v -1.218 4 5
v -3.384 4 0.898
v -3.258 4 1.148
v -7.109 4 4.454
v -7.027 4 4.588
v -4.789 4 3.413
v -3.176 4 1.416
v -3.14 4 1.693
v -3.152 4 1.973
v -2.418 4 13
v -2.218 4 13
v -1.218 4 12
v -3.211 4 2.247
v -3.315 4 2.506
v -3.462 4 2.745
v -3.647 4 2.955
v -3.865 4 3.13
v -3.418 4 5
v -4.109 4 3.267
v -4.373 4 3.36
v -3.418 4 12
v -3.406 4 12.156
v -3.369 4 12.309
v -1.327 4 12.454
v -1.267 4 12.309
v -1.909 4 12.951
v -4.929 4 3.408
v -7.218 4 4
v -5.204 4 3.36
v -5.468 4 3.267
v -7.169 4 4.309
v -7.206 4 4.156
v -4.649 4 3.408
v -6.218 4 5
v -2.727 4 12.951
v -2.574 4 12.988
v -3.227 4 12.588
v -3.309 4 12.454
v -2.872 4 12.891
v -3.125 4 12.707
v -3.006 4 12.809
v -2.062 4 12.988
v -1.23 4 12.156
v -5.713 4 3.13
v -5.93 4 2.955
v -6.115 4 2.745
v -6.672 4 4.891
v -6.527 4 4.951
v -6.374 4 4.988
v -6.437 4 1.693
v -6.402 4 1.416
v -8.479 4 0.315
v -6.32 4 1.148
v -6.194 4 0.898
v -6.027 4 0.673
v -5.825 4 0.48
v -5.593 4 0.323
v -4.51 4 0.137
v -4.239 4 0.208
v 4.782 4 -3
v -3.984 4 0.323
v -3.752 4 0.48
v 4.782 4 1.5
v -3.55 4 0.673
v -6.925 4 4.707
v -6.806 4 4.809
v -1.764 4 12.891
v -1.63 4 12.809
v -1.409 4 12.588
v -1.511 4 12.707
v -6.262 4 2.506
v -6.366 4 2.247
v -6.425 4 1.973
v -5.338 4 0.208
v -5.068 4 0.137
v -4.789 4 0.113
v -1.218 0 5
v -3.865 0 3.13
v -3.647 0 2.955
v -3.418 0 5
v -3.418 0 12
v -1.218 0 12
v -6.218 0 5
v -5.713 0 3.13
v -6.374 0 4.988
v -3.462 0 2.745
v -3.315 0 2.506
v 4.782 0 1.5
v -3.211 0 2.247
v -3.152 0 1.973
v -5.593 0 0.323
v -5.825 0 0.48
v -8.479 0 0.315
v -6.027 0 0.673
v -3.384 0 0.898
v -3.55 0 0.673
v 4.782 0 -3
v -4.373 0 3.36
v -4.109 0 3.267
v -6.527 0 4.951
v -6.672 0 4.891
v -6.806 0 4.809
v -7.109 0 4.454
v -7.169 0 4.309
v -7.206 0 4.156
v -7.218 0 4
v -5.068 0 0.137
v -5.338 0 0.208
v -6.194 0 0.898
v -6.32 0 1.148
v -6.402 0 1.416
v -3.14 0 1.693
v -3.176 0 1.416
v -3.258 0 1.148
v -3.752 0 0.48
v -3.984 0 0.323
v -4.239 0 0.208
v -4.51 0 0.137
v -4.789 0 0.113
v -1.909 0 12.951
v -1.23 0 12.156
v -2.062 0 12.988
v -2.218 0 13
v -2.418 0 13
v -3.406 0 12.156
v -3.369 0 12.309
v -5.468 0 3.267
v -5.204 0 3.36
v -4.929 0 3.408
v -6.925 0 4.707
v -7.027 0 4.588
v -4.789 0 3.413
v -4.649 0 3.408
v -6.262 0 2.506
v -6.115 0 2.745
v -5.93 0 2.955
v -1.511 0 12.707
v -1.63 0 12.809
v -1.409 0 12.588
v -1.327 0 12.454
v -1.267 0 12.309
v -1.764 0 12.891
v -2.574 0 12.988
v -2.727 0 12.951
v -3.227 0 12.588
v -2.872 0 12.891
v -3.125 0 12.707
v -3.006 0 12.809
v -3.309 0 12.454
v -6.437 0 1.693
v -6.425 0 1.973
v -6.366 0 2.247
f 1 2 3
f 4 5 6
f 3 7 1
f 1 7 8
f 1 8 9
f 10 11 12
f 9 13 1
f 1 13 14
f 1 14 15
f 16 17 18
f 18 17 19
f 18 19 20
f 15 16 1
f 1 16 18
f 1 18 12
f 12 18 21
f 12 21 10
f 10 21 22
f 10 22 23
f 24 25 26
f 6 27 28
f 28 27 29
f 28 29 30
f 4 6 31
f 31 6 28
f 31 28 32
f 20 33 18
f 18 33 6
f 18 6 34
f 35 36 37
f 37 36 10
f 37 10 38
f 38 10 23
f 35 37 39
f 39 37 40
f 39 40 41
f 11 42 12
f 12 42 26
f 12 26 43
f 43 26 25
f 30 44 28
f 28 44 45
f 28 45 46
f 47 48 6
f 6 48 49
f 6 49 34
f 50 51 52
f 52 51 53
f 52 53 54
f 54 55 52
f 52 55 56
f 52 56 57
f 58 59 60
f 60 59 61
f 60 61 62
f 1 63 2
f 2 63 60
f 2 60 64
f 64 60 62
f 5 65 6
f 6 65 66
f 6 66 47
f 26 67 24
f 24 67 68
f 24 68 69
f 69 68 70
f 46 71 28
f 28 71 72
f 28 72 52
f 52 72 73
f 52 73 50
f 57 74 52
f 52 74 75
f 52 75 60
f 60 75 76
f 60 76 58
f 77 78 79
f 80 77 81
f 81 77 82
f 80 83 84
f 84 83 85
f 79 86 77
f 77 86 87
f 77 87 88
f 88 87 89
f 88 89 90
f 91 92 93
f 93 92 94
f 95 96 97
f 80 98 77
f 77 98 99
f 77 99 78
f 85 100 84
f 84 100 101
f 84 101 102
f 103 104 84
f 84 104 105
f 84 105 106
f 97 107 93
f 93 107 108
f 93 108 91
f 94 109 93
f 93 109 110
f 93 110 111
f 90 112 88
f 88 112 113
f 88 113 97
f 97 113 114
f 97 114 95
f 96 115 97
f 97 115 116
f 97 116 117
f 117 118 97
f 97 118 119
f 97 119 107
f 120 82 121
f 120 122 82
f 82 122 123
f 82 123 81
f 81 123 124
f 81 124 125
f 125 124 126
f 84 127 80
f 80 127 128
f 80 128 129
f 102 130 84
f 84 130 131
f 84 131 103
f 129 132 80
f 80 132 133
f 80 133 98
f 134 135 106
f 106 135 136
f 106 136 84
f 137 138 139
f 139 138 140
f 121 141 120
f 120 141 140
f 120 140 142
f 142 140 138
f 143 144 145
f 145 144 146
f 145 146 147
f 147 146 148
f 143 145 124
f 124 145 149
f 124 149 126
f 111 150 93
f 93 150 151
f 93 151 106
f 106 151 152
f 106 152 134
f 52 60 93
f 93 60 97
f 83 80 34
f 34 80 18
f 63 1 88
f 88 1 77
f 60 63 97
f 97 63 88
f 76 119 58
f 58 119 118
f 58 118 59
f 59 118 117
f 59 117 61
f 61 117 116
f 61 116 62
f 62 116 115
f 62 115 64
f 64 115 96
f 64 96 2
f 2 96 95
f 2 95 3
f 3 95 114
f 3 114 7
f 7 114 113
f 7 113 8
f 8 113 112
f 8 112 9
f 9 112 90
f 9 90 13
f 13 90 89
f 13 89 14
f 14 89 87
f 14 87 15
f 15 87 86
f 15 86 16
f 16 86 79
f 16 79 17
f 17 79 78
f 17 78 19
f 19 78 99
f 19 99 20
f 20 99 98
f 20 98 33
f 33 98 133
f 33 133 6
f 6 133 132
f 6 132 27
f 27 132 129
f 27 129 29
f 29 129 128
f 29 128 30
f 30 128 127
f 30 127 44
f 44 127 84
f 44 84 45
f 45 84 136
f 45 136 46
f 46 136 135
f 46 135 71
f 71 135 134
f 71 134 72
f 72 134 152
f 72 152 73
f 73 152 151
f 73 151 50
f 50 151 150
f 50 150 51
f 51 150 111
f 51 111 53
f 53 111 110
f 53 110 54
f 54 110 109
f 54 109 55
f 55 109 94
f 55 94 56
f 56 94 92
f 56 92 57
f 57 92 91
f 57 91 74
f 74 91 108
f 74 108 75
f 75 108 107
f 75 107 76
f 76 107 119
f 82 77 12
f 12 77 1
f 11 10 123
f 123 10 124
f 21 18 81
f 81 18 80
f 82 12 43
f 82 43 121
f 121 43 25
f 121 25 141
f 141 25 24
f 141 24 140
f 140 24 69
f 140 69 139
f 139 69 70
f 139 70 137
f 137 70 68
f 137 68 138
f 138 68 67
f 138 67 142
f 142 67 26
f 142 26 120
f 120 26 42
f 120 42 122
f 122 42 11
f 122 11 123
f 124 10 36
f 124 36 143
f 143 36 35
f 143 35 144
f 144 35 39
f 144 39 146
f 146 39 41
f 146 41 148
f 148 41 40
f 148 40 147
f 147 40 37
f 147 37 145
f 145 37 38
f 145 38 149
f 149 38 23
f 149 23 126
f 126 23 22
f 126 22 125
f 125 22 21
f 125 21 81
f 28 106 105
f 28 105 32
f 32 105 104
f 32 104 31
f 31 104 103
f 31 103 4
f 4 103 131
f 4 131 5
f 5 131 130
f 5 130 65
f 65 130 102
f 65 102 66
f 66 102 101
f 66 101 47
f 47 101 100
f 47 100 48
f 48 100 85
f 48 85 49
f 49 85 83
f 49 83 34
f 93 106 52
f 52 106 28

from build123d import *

# Parameters (mm, degrees)
SKETCH1_R           = 1.65
BOSS_EXTRUDE1_DEPTH = 4
SKETCH2_W           = 2.2
SKETCH2_H           = 8
BOSS_EXTRUDE2_DEPTH = 4
FILLET1_R           = 1
FILLET2_R           = 1
BOSS_EXTRUDE3_DEPTH = 4


with BuildPart() as part:
    # Sketch1 → Boss-Extrude1 (new body)
    with BuildSketch(Plane(origin=(0, 0, 0), x_dir=(1, 0, 0), z_dir=(0, 1, 0))):
        Polygon((4.781972019, 3), (-7.218027981, 0), (-7.218027981, -5), (-1.218027981, -5), (4.781972019, -1.5), (4.781972019, 0), align=None)
        with Locations(Location((-4.78871413, -1.763457272, 0), (0, 0, 270))):
            Circle(SKETCH1_R, mode=Mode.SUBTRACT)
    extrude(amount=BOSS_EXTRUDE1_DEPTH)

    # Sketch2 → Boss-Extrude2 (add)
    with BuildSketch(Plane(origin=(0, 4, 0), x_dir=(1, 0, 0), z_dir=(0, 1, 0))):
        with Locations((-2.318027981, -9)):
            Rectangle(SKETCH2_W, SKETCH2_H)
    extrude(amount=-BOSS_EXTRUDE2_DEPTH)

    # Fillet1
    fillet1_edges = [part.edges().sort_by_distance(p)[0] for p in [
        (-1.218027981, 2, 13),
        (-3.418027981, 2, 13),
    ]]
    fillet(fillet1_edges, radius=FILLET1_R)

    # Fillet2
    fillet2_edges = [part.edges().sort_by_distance(p)[0] for p in [
        (-7.218027981, 2, 5),
    ]]
    fillet(fillet2_edges, radius=FILLET2_R)

    # Sketch3 → Boss-Extrude3 (add)
    with BuildSketch(Plane(origin=(0, 4, 0), x_dir=(1, 0, 0), z_dir=(0, 1, 0))):
        Polygon((-7.218027981, 0), (-8.479213231, -0.315296313), (-7.218027981, -4), align=None)
    extrude(amount=-BOSS_EXTRUDE3_DEPTH)


solid = part.part
